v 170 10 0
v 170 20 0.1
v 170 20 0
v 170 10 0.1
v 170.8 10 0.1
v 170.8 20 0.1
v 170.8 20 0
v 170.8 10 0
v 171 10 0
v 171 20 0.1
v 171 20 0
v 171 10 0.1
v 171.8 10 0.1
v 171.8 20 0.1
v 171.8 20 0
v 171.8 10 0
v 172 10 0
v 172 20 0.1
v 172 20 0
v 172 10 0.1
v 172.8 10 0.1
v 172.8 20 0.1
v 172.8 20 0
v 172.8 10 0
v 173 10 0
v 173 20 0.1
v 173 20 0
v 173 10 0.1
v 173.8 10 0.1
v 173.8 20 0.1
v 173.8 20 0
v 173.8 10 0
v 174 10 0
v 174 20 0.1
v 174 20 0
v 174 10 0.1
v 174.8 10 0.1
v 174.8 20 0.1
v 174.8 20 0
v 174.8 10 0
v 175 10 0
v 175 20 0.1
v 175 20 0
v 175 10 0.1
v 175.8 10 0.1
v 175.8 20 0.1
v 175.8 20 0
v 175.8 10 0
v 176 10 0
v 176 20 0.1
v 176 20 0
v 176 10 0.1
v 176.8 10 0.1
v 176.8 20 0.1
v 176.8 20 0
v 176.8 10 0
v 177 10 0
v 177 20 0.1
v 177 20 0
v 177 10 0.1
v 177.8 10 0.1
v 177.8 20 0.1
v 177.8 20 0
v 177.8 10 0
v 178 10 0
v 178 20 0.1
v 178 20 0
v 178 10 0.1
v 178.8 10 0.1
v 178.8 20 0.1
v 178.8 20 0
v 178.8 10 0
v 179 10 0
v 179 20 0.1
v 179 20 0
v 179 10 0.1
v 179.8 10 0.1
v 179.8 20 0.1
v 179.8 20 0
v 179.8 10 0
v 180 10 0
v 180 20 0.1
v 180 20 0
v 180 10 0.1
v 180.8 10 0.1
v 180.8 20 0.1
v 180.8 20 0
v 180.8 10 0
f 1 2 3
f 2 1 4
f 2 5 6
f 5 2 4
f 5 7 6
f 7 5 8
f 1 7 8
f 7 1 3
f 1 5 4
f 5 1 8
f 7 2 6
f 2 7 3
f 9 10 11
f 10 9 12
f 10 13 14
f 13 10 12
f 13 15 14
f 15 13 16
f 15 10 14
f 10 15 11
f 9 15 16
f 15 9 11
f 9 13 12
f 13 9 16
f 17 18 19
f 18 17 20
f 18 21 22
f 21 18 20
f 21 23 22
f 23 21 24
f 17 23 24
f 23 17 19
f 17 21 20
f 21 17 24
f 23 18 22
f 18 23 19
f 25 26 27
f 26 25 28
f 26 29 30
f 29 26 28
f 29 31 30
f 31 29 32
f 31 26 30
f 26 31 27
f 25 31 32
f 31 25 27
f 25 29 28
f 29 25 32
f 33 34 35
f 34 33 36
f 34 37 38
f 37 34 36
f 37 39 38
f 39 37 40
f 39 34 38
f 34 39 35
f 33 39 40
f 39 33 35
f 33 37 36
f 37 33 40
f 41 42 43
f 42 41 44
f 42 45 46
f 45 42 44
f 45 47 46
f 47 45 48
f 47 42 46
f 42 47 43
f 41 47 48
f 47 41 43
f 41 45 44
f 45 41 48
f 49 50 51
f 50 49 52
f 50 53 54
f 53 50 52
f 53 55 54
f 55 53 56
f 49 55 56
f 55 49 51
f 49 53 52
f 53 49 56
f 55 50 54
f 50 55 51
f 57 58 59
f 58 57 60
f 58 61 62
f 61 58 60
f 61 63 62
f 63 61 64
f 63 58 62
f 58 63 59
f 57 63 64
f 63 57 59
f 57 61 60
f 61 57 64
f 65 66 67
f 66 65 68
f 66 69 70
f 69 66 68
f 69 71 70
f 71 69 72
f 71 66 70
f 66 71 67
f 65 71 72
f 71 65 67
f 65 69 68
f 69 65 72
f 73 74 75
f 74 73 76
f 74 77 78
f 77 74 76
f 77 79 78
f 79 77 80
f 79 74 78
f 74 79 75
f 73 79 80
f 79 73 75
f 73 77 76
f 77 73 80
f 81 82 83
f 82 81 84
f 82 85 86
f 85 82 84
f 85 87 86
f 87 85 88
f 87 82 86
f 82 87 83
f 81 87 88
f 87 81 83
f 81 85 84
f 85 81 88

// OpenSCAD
translate([10+160,10+0,0])
        for (i = [0 : 10]){
            translate([i,0,0])
                cube(size = [0.8,10,0.1]);
    }
